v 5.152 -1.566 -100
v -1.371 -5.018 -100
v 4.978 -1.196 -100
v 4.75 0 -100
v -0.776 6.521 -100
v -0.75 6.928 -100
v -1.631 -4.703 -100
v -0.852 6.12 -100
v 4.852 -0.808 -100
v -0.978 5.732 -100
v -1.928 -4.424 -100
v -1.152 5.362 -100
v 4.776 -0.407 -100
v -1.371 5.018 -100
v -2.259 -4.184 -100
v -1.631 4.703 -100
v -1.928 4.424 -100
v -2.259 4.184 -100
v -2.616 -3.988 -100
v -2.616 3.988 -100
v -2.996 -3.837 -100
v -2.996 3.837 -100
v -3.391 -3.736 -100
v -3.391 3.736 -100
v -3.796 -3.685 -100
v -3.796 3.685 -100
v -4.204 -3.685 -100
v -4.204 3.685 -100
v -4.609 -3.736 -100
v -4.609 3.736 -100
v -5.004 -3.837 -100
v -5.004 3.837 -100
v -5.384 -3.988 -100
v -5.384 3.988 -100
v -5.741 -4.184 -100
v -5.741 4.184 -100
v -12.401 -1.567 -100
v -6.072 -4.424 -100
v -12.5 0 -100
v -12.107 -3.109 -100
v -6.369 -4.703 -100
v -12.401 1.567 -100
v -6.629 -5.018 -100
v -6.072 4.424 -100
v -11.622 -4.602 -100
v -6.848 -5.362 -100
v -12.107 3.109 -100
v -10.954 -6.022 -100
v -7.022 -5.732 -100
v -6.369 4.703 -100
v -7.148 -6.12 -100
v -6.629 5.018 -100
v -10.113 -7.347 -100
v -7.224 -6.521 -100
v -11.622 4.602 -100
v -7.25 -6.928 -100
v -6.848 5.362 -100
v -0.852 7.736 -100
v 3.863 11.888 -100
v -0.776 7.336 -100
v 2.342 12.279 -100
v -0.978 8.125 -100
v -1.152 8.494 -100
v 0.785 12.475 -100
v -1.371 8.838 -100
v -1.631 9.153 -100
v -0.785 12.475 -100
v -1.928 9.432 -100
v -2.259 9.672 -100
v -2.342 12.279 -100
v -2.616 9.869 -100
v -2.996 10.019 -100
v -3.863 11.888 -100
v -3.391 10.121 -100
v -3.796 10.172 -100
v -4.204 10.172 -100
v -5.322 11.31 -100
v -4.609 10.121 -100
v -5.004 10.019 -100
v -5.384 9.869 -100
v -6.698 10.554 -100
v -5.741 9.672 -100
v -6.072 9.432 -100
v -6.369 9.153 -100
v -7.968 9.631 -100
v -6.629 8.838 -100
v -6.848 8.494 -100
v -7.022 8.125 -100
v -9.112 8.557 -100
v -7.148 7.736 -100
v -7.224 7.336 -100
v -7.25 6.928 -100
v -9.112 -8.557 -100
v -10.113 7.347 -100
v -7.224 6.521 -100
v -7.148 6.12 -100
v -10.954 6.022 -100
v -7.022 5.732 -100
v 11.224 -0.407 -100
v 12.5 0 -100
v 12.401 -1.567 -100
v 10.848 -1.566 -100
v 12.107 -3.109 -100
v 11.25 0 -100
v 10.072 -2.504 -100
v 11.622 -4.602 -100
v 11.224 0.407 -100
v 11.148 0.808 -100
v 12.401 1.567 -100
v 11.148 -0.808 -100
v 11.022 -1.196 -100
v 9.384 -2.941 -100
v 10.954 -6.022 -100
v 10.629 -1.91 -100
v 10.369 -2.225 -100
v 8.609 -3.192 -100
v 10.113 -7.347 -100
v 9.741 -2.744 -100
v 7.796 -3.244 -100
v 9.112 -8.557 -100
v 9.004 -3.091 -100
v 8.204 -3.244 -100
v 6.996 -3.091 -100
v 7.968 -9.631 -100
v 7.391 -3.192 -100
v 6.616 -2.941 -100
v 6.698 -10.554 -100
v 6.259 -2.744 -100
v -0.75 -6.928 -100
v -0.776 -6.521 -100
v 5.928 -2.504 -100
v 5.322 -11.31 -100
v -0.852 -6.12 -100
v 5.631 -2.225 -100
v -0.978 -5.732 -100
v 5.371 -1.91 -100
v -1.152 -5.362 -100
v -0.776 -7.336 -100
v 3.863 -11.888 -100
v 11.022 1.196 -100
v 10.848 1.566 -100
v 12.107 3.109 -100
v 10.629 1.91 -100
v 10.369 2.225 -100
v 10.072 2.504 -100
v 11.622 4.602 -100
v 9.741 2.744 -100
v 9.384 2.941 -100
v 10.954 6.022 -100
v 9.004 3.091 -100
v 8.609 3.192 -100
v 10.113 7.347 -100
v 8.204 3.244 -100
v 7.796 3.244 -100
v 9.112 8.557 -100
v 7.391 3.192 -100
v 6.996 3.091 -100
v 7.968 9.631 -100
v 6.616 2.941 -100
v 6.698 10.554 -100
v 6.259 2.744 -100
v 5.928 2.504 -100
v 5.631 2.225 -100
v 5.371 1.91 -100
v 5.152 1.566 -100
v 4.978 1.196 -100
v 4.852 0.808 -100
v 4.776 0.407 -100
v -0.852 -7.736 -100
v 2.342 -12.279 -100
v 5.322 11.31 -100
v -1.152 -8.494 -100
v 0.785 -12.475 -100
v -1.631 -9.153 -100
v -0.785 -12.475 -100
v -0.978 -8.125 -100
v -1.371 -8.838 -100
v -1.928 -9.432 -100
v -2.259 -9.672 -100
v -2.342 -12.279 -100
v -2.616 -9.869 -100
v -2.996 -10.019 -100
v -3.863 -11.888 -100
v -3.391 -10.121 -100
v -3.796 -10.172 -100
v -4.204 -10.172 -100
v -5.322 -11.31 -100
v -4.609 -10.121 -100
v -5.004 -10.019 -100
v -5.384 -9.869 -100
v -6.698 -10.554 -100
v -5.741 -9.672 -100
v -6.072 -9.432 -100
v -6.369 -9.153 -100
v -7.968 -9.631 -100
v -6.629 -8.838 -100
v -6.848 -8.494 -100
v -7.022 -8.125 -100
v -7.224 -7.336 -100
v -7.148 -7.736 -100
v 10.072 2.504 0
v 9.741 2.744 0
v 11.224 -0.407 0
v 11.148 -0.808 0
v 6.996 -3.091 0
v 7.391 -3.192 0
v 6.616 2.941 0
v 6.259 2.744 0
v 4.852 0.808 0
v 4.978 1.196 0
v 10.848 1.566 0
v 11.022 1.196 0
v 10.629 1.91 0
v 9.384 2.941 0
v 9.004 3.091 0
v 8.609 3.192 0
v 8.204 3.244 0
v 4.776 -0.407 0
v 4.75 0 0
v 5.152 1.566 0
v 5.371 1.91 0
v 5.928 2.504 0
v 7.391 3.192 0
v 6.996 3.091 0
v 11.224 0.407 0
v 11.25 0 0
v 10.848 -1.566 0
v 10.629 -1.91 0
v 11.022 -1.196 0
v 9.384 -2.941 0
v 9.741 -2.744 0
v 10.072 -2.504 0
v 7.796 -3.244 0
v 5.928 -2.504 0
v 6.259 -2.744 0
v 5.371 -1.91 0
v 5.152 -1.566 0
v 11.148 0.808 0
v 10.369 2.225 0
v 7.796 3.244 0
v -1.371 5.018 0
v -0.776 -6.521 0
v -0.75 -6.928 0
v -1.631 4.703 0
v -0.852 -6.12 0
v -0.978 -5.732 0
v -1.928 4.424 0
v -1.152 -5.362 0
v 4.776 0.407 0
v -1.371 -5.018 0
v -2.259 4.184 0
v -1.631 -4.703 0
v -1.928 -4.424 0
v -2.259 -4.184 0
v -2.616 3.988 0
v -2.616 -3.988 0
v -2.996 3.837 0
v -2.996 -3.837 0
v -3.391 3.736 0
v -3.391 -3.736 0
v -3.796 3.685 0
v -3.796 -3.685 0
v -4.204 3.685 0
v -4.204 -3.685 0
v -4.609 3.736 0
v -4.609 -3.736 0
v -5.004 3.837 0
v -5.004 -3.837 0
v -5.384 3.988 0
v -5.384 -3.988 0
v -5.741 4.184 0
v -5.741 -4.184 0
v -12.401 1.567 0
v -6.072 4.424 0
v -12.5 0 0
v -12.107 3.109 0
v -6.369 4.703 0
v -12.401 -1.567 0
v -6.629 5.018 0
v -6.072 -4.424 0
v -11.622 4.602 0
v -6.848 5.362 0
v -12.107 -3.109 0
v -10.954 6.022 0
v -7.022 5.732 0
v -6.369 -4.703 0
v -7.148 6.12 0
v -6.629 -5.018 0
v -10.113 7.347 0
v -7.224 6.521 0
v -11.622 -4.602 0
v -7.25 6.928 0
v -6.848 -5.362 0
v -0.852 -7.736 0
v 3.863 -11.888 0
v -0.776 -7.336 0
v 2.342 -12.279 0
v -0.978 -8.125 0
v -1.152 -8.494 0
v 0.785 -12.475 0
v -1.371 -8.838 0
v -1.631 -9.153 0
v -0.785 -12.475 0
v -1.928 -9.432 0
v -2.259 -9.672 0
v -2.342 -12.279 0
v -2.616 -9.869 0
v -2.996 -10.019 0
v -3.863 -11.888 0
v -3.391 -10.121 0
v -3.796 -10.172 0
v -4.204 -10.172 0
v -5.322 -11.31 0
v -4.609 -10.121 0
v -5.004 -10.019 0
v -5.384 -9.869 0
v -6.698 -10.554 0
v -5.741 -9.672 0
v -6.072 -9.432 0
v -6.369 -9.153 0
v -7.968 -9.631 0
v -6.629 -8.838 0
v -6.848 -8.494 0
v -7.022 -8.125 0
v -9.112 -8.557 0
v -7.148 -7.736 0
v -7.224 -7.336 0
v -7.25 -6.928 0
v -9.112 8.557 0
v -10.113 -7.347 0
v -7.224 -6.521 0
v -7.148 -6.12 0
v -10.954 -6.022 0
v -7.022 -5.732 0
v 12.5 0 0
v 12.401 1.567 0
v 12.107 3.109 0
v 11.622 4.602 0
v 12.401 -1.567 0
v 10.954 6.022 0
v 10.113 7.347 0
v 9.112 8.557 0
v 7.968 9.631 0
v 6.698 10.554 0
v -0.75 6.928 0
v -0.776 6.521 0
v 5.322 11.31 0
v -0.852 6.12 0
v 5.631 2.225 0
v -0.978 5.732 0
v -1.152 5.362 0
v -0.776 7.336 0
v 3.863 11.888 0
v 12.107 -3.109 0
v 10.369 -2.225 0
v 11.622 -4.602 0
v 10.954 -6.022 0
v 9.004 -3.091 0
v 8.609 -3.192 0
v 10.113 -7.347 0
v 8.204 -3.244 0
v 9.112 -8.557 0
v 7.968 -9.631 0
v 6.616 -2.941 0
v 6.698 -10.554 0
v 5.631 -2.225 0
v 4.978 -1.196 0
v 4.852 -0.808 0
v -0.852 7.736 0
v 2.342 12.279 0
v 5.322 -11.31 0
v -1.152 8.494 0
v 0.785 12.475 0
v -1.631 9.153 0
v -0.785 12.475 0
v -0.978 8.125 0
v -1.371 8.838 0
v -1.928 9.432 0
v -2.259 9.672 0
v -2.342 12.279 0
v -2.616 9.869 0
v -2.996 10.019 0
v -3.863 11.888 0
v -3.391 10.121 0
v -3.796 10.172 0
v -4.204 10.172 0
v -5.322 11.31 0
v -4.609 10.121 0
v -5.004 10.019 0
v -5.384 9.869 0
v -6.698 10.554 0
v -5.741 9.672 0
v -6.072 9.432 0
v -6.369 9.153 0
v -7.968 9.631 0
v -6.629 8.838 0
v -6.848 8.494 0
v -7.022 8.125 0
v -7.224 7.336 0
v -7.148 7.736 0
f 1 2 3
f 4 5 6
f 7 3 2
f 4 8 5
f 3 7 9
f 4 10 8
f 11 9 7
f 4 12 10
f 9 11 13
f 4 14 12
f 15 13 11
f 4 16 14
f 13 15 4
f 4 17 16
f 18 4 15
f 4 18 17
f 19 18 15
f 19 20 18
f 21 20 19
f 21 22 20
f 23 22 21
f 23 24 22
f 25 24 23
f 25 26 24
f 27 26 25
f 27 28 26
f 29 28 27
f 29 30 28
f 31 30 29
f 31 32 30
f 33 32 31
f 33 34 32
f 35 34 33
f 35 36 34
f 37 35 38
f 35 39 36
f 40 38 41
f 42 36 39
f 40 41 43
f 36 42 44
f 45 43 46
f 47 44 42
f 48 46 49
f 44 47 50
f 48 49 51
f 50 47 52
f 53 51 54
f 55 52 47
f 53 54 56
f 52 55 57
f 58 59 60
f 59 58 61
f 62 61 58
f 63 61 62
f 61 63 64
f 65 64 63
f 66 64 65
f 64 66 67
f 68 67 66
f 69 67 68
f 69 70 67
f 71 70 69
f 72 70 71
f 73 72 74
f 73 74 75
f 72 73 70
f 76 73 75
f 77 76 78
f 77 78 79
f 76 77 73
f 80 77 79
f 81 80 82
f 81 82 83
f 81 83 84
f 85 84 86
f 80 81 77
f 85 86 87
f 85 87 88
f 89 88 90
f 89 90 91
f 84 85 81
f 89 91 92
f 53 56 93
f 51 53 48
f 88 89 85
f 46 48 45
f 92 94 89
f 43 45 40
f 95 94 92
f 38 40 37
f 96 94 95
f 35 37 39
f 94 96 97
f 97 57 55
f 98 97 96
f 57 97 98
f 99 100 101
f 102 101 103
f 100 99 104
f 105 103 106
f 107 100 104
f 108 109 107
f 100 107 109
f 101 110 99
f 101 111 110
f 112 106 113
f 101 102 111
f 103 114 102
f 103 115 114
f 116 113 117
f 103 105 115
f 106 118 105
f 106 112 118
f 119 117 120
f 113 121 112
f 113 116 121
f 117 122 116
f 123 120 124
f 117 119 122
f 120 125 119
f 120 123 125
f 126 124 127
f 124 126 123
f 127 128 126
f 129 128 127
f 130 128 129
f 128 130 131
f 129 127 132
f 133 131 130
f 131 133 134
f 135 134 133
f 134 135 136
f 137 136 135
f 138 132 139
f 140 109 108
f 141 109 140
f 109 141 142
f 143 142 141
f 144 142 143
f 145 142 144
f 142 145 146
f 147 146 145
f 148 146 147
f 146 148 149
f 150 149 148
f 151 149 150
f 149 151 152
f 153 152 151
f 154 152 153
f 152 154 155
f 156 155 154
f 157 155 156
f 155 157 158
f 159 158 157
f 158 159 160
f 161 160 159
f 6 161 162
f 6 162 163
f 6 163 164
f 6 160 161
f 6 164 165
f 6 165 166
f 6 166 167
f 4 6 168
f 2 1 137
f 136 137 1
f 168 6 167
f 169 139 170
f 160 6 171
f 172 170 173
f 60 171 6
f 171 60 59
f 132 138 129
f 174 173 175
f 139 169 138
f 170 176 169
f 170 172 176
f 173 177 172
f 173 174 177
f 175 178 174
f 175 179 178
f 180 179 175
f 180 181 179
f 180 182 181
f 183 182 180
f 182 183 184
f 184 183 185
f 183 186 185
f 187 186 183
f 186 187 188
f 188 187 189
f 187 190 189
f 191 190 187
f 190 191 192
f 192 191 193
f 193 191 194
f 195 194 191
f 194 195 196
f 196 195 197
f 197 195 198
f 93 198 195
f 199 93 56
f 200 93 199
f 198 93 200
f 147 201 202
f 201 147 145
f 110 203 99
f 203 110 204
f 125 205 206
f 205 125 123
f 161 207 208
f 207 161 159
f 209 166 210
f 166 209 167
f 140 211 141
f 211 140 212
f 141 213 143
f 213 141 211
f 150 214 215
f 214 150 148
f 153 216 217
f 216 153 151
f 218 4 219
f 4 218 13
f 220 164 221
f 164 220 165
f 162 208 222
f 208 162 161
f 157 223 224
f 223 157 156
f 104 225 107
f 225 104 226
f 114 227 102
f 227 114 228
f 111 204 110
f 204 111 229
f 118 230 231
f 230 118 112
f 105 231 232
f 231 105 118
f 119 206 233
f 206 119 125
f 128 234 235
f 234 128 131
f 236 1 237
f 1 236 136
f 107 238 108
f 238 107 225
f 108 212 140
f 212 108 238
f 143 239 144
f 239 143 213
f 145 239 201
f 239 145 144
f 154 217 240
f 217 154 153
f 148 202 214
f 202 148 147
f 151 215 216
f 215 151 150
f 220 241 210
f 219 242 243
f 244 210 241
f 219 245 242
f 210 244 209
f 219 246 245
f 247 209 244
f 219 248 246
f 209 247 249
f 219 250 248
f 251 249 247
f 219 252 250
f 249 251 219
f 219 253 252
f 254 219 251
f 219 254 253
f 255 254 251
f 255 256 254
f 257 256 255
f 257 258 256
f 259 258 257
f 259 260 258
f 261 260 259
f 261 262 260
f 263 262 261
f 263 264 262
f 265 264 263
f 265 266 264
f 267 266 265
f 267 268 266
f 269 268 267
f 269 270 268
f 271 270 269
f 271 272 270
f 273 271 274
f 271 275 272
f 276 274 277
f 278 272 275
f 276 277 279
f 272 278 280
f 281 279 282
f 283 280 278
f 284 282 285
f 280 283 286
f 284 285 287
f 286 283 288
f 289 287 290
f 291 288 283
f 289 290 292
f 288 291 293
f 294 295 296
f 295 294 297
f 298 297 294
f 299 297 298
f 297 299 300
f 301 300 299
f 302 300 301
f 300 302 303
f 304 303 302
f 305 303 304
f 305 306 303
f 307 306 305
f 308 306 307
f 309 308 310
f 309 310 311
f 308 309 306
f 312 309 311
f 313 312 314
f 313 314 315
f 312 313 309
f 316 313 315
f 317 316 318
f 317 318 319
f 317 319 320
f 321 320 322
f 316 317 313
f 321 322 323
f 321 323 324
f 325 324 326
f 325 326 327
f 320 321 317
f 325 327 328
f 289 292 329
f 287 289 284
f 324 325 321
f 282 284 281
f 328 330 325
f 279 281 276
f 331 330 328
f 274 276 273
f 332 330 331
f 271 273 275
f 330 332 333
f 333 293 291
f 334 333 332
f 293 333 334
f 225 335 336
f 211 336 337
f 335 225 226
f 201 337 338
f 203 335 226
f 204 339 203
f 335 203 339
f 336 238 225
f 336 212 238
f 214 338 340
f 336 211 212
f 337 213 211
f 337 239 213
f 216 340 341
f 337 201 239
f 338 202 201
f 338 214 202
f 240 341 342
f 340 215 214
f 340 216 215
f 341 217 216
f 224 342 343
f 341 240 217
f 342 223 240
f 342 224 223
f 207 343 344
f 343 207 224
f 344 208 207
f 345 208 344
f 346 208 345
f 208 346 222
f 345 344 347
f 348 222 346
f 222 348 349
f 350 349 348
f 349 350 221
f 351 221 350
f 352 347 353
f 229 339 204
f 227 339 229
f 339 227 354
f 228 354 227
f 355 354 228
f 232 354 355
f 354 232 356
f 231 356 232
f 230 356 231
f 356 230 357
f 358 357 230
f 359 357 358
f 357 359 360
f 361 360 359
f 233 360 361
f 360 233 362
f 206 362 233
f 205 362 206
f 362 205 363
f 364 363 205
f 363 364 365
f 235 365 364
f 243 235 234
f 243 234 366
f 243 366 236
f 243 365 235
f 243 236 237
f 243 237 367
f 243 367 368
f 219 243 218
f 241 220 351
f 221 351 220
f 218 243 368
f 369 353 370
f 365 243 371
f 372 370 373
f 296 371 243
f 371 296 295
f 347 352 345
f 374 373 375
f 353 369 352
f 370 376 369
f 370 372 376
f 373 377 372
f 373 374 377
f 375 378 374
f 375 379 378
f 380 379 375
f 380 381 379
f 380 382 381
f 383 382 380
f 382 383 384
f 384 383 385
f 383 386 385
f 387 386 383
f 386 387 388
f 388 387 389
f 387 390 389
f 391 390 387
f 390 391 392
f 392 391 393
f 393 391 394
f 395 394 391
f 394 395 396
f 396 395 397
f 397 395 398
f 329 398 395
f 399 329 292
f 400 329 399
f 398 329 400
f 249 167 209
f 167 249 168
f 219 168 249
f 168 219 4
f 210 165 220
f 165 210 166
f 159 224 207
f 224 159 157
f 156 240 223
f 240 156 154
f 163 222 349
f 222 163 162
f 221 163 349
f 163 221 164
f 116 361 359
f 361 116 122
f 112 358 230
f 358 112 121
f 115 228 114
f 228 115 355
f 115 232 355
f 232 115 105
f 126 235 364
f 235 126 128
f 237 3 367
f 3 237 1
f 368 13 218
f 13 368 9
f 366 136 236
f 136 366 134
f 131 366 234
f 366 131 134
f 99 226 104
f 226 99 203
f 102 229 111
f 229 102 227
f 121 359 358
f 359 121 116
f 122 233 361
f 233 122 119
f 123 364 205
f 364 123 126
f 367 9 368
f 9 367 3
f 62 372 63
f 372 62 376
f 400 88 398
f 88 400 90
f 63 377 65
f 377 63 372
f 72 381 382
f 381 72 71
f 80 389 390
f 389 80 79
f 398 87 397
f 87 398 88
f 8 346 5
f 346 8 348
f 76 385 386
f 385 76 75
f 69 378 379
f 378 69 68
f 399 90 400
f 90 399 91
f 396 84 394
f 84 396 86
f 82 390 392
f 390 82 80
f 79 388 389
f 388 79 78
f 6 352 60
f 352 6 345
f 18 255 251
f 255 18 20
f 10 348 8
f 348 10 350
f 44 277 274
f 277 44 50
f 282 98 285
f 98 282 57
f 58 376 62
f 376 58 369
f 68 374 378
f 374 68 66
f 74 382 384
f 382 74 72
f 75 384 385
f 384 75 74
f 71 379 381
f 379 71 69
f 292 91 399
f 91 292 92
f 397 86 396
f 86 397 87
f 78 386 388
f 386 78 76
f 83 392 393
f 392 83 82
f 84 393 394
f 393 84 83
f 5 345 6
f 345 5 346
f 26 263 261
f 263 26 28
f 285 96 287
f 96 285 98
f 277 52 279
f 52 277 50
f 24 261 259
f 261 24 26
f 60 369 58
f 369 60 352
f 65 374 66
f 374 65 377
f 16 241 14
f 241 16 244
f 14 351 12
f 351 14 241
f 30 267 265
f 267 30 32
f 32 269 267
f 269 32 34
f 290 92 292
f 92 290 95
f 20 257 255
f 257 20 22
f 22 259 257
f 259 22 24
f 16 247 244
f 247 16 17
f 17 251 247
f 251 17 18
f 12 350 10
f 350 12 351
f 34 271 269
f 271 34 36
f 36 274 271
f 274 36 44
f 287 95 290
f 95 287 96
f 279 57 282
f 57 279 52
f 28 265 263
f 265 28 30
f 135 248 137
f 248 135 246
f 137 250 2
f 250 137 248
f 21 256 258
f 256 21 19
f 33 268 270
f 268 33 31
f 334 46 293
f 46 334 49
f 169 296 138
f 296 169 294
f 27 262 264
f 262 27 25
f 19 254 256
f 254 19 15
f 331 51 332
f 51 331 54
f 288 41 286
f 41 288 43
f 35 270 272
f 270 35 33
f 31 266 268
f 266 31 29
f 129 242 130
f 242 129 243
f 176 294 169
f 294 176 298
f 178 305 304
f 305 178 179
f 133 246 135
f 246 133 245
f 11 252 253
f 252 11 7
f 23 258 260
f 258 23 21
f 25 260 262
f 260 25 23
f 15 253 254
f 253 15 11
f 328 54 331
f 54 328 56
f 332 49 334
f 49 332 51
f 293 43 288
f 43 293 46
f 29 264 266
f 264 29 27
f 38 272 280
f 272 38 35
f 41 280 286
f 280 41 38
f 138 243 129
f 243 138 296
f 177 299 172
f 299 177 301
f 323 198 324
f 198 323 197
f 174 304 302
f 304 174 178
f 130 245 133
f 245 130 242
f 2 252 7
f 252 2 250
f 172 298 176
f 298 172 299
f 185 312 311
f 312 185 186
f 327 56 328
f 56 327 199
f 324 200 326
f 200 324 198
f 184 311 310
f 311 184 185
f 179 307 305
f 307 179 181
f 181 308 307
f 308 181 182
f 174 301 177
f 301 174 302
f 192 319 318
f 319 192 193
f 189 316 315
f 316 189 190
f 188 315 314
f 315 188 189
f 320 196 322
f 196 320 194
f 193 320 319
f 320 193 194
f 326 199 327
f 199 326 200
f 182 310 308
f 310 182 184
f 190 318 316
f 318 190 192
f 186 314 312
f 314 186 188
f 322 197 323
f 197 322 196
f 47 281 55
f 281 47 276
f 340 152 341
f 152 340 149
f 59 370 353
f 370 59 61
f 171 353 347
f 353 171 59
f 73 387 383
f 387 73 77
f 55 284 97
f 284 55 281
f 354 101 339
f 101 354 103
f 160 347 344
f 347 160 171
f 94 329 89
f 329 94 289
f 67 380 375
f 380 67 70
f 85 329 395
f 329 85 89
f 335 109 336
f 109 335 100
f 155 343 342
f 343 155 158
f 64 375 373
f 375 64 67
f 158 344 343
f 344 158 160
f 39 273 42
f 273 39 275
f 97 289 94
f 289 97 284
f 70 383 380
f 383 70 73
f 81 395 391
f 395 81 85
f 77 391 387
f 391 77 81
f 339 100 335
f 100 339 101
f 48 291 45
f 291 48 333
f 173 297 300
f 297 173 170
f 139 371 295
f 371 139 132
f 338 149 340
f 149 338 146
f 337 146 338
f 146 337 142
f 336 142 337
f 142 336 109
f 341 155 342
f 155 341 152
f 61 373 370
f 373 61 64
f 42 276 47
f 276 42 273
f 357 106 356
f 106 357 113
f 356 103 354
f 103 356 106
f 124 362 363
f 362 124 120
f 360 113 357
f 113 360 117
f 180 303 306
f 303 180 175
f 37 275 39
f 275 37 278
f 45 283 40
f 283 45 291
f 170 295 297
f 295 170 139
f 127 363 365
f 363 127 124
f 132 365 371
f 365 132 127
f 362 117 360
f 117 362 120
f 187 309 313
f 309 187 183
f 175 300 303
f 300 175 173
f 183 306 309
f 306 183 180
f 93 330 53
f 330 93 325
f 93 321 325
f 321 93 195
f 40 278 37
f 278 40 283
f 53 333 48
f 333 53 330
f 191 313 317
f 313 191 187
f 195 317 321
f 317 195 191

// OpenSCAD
$fn = 50;


difference() {
	union() {
		translate(v = [0, 0, -100.0000000000]) {
			cylinder(h = 100, r = 12.5000000000);
		}
	}
	union() {
		#translate(v = [8.0000000000, 0.0000000000, -100]) {
			cylinder(h = 100, r = 3.2500000000);
		}
		#translate(v = [-4.0000000000, 6.9282032303, -100]) {
			cylinder(h = 100, r = 3.2500000000);
		}
		#translate(v = [-4.0000000000, -6.9282032303, -100]) {
			cylinder(h = 100, r = 3.2500000000);
		}
	}
}
